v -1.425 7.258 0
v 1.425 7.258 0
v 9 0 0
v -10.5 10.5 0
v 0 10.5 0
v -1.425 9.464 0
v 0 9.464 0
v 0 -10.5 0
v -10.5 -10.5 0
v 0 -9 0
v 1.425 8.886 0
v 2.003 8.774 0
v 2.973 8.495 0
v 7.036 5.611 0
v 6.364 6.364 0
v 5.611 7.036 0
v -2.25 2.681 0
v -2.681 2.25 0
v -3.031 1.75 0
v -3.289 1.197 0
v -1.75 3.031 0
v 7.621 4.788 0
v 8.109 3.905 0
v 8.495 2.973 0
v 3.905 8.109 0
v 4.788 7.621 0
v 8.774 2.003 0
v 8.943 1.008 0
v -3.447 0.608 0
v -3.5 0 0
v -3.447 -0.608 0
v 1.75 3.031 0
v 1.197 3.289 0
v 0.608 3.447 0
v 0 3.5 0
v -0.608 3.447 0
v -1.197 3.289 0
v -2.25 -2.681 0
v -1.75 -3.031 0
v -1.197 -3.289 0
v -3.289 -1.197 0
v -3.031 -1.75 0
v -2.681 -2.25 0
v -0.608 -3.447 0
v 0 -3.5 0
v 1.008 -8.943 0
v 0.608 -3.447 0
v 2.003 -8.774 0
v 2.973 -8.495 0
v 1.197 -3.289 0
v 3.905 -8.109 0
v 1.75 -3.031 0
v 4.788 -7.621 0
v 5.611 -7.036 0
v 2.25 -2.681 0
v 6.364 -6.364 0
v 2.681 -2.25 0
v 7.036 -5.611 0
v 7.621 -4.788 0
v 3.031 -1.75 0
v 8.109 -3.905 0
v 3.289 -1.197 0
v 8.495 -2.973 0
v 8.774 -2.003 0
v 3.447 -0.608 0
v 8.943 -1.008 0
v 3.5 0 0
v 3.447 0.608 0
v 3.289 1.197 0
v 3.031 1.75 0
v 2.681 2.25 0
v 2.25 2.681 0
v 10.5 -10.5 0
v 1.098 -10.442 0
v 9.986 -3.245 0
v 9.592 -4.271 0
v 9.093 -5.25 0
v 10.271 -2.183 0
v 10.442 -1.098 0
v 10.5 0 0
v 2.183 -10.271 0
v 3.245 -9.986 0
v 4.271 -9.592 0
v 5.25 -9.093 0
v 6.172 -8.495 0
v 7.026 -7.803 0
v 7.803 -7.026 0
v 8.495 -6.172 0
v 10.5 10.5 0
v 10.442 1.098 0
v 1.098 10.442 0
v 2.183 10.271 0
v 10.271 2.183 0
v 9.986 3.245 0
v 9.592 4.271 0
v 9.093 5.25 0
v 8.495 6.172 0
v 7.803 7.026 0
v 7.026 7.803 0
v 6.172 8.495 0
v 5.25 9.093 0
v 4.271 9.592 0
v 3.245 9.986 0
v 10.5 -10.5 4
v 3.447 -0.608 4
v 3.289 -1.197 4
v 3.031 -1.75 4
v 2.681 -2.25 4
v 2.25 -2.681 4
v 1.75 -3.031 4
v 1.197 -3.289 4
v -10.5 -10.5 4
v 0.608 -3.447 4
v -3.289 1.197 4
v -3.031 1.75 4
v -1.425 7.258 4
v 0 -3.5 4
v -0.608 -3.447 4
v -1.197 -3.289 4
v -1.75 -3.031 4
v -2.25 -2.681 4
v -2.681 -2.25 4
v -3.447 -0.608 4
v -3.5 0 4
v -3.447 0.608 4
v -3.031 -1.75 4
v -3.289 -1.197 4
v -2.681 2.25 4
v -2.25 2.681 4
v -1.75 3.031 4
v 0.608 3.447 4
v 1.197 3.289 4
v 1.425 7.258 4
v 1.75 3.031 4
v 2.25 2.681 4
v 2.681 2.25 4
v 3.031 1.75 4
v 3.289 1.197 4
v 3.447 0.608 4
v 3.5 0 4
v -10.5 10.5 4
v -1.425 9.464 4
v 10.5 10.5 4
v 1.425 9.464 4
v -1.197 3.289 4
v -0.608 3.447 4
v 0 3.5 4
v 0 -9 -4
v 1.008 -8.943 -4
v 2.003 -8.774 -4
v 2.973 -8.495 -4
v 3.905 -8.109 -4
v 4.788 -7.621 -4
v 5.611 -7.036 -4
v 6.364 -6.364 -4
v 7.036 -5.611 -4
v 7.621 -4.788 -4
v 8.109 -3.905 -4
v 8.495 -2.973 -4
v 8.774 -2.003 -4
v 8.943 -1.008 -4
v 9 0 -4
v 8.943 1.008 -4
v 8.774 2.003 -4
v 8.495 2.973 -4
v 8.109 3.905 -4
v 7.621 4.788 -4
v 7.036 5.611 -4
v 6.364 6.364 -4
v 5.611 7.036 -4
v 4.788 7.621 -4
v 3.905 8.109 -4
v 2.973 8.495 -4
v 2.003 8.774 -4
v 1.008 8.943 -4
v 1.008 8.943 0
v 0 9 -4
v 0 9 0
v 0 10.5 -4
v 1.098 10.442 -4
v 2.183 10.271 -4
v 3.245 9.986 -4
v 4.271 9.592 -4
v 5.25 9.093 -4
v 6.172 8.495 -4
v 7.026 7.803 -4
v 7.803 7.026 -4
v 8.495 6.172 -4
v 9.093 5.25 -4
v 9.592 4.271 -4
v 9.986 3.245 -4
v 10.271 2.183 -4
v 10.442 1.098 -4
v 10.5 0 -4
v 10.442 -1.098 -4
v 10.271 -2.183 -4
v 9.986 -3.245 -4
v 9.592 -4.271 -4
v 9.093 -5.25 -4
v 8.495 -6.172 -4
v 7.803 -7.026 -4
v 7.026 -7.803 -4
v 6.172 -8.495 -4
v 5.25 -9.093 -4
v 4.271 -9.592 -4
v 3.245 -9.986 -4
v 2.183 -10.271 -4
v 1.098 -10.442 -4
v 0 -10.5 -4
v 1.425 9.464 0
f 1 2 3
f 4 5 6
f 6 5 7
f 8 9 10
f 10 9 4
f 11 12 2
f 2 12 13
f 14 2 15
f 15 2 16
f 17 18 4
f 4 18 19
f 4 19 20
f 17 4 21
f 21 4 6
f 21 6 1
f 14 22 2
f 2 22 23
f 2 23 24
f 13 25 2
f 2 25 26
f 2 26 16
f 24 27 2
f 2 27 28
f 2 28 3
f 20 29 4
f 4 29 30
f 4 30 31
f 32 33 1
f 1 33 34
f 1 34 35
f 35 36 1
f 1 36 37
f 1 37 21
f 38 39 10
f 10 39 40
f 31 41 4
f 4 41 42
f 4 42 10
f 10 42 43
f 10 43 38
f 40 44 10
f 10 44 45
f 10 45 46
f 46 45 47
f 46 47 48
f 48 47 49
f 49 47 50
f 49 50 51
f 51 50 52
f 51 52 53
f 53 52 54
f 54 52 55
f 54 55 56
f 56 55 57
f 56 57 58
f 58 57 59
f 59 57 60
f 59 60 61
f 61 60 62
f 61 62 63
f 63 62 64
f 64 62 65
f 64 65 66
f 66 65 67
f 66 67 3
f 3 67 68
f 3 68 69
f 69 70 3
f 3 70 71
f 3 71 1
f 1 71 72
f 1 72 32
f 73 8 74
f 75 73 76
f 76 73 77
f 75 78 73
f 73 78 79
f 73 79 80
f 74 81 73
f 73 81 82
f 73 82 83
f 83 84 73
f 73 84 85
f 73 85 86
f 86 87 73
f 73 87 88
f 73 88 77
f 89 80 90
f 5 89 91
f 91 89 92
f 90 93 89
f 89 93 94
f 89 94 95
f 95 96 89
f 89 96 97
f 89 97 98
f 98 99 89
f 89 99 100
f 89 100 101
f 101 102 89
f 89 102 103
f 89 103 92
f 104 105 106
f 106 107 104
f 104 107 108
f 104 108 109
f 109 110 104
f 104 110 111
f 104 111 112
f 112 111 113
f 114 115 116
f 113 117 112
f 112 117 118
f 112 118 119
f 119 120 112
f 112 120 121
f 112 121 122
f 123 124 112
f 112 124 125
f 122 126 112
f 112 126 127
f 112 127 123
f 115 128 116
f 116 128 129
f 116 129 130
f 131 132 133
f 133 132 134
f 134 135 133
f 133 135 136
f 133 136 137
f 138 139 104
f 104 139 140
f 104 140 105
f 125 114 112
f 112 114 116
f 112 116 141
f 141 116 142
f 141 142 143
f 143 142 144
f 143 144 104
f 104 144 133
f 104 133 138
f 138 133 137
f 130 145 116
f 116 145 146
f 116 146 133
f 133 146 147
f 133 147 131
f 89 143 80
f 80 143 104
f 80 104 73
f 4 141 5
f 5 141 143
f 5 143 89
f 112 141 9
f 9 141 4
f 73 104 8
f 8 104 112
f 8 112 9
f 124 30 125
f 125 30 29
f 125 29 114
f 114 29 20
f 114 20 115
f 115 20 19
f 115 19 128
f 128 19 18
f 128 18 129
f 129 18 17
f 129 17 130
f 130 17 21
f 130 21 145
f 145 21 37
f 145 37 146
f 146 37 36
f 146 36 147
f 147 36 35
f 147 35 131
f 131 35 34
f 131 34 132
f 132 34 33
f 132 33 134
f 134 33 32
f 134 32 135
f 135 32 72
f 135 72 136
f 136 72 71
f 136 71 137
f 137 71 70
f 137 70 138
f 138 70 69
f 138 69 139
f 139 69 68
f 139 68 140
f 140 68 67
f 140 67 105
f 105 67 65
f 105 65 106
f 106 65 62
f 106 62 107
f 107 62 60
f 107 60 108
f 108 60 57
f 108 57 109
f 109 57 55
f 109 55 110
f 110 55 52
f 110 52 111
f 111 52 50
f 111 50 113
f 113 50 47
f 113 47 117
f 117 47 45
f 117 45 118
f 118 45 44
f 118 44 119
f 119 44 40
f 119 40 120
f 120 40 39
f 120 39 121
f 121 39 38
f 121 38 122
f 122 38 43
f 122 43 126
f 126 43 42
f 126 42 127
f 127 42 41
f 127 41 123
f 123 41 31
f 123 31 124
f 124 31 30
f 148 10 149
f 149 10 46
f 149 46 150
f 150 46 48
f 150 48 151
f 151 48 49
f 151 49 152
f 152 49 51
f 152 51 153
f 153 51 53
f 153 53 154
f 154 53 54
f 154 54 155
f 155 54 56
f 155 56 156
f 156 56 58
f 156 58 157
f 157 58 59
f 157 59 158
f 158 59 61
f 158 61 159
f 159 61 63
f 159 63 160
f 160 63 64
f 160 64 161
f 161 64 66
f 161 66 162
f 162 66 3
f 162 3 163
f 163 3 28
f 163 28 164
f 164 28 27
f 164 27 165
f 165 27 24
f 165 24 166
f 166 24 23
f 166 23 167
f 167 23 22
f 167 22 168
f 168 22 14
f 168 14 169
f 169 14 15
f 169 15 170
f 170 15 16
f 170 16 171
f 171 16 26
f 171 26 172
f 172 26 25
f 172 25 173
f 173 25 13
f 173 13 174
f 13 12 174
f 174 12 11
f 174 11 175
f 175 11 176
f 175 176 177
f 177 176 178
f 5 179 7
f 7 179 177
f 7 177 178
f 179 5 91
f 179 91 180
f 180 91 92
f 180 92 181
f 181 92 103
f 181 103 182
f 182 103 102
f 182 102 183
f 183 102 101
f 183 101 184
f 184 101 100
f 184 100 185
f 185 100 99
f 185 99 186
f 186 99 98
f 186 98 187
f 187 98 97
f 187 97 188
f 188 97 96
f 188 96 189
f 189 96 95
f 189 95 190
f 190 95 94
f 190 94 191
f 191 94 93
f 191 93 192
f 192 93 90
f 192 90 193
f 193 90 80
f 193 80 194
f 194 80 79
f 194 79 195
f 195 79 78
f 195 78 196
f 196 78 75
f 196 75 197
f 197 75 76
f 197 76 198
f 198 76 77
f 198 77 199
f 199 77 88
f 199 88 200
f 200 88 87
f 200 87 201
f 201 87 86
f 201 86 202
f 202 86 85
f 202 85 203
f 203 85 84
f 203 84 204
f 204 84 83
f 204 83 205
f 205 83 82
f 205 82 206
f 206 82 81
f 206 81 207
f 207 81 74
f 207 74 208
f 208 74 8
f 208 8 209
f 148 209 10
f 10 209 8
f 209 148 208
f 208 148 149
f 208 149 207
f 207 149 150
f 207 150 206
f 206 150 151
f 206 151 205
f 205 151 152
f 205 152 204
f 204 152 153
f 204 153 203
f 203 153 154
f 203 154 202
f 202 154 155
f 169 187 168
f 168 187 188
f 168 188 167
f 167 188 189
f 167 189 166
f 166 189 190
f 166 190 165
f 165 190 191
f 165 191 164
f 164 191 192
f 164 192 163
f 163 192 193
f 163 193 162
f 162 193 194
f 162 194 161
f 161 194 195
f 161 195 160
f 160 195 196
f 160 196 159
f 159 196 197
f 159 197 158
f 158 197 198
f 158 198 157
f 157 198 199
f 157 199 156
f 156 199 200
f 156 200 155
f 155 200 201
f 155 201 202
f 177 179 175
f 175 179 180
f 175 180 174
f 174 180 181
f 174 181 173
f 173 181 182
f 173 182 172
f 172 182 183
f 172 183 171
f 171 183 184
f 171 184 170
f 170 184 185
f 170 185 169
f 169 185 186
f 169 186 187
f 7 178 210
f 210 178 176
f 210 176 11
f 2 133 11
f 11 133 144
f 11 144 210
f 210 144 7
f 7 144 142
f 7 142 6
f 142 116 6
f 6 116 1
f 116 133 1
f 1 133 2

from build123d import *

# Parameters (mm, degrees)
SKETCH1_W           = 21
SKETCH1_H           = 21
SKETCH1_R           = 3.5
BOSS_EXTRUDE1_DEPTH = 4
BOSS_EXTRUDE2_DEPTH = 4
SKETCH3_W           = 2.85
SKETCH3_H           = 2.205413133
CUT_EXTRUDE1_DEPTH  = 4


with BuildPart() as part:
    # Sketch1 → Boss-Extrude1 (new body)
    with BuildSketch(Plane.XY):
        Rectangle(SKETCH1_W, SKETCH1_H)
        Circle(SKETCH1_R, mode=Mode.SUBTRACT)
    extrude(amount=BOSS_EXTRUDE1_DEPTH)

    # Sketch2 → Boss-Extrude2 (add)
    with BuildSketch(Plane(origin=(0, 0, 0), x_dir=(-1, 0, 0), z_dir=(0, 0, -1))):
        with BuildLine():
            Line((0, 10.5), (0, 9))
            ThreePointArc((0, 9), (-9, 0), (0, -9))
            Line((0, -9), (0, -10.5))
            ThreePointArc((0, -10.5), (-10.5, 0), (0, 10.5))
        make_face()
    extrude(amount=BOSS_EXTRUDE2_DEPTH)

    # Sketch3 → Cut-Extrude1 (cut)
    with BuildSketch(Plane(origin=(0, 0, 0), x_dir=(-1, 0, 0), z_dir=(0, 0, -1))):
        with Locations((0, 8.361109671)):
            Rectangle(SKETCH3_W, SKETCH3_H)
    extrude(amount=-CUT_EXTRUDE1_DEPTH, mode=Mode.SUBTRACT)


solid = part.part
